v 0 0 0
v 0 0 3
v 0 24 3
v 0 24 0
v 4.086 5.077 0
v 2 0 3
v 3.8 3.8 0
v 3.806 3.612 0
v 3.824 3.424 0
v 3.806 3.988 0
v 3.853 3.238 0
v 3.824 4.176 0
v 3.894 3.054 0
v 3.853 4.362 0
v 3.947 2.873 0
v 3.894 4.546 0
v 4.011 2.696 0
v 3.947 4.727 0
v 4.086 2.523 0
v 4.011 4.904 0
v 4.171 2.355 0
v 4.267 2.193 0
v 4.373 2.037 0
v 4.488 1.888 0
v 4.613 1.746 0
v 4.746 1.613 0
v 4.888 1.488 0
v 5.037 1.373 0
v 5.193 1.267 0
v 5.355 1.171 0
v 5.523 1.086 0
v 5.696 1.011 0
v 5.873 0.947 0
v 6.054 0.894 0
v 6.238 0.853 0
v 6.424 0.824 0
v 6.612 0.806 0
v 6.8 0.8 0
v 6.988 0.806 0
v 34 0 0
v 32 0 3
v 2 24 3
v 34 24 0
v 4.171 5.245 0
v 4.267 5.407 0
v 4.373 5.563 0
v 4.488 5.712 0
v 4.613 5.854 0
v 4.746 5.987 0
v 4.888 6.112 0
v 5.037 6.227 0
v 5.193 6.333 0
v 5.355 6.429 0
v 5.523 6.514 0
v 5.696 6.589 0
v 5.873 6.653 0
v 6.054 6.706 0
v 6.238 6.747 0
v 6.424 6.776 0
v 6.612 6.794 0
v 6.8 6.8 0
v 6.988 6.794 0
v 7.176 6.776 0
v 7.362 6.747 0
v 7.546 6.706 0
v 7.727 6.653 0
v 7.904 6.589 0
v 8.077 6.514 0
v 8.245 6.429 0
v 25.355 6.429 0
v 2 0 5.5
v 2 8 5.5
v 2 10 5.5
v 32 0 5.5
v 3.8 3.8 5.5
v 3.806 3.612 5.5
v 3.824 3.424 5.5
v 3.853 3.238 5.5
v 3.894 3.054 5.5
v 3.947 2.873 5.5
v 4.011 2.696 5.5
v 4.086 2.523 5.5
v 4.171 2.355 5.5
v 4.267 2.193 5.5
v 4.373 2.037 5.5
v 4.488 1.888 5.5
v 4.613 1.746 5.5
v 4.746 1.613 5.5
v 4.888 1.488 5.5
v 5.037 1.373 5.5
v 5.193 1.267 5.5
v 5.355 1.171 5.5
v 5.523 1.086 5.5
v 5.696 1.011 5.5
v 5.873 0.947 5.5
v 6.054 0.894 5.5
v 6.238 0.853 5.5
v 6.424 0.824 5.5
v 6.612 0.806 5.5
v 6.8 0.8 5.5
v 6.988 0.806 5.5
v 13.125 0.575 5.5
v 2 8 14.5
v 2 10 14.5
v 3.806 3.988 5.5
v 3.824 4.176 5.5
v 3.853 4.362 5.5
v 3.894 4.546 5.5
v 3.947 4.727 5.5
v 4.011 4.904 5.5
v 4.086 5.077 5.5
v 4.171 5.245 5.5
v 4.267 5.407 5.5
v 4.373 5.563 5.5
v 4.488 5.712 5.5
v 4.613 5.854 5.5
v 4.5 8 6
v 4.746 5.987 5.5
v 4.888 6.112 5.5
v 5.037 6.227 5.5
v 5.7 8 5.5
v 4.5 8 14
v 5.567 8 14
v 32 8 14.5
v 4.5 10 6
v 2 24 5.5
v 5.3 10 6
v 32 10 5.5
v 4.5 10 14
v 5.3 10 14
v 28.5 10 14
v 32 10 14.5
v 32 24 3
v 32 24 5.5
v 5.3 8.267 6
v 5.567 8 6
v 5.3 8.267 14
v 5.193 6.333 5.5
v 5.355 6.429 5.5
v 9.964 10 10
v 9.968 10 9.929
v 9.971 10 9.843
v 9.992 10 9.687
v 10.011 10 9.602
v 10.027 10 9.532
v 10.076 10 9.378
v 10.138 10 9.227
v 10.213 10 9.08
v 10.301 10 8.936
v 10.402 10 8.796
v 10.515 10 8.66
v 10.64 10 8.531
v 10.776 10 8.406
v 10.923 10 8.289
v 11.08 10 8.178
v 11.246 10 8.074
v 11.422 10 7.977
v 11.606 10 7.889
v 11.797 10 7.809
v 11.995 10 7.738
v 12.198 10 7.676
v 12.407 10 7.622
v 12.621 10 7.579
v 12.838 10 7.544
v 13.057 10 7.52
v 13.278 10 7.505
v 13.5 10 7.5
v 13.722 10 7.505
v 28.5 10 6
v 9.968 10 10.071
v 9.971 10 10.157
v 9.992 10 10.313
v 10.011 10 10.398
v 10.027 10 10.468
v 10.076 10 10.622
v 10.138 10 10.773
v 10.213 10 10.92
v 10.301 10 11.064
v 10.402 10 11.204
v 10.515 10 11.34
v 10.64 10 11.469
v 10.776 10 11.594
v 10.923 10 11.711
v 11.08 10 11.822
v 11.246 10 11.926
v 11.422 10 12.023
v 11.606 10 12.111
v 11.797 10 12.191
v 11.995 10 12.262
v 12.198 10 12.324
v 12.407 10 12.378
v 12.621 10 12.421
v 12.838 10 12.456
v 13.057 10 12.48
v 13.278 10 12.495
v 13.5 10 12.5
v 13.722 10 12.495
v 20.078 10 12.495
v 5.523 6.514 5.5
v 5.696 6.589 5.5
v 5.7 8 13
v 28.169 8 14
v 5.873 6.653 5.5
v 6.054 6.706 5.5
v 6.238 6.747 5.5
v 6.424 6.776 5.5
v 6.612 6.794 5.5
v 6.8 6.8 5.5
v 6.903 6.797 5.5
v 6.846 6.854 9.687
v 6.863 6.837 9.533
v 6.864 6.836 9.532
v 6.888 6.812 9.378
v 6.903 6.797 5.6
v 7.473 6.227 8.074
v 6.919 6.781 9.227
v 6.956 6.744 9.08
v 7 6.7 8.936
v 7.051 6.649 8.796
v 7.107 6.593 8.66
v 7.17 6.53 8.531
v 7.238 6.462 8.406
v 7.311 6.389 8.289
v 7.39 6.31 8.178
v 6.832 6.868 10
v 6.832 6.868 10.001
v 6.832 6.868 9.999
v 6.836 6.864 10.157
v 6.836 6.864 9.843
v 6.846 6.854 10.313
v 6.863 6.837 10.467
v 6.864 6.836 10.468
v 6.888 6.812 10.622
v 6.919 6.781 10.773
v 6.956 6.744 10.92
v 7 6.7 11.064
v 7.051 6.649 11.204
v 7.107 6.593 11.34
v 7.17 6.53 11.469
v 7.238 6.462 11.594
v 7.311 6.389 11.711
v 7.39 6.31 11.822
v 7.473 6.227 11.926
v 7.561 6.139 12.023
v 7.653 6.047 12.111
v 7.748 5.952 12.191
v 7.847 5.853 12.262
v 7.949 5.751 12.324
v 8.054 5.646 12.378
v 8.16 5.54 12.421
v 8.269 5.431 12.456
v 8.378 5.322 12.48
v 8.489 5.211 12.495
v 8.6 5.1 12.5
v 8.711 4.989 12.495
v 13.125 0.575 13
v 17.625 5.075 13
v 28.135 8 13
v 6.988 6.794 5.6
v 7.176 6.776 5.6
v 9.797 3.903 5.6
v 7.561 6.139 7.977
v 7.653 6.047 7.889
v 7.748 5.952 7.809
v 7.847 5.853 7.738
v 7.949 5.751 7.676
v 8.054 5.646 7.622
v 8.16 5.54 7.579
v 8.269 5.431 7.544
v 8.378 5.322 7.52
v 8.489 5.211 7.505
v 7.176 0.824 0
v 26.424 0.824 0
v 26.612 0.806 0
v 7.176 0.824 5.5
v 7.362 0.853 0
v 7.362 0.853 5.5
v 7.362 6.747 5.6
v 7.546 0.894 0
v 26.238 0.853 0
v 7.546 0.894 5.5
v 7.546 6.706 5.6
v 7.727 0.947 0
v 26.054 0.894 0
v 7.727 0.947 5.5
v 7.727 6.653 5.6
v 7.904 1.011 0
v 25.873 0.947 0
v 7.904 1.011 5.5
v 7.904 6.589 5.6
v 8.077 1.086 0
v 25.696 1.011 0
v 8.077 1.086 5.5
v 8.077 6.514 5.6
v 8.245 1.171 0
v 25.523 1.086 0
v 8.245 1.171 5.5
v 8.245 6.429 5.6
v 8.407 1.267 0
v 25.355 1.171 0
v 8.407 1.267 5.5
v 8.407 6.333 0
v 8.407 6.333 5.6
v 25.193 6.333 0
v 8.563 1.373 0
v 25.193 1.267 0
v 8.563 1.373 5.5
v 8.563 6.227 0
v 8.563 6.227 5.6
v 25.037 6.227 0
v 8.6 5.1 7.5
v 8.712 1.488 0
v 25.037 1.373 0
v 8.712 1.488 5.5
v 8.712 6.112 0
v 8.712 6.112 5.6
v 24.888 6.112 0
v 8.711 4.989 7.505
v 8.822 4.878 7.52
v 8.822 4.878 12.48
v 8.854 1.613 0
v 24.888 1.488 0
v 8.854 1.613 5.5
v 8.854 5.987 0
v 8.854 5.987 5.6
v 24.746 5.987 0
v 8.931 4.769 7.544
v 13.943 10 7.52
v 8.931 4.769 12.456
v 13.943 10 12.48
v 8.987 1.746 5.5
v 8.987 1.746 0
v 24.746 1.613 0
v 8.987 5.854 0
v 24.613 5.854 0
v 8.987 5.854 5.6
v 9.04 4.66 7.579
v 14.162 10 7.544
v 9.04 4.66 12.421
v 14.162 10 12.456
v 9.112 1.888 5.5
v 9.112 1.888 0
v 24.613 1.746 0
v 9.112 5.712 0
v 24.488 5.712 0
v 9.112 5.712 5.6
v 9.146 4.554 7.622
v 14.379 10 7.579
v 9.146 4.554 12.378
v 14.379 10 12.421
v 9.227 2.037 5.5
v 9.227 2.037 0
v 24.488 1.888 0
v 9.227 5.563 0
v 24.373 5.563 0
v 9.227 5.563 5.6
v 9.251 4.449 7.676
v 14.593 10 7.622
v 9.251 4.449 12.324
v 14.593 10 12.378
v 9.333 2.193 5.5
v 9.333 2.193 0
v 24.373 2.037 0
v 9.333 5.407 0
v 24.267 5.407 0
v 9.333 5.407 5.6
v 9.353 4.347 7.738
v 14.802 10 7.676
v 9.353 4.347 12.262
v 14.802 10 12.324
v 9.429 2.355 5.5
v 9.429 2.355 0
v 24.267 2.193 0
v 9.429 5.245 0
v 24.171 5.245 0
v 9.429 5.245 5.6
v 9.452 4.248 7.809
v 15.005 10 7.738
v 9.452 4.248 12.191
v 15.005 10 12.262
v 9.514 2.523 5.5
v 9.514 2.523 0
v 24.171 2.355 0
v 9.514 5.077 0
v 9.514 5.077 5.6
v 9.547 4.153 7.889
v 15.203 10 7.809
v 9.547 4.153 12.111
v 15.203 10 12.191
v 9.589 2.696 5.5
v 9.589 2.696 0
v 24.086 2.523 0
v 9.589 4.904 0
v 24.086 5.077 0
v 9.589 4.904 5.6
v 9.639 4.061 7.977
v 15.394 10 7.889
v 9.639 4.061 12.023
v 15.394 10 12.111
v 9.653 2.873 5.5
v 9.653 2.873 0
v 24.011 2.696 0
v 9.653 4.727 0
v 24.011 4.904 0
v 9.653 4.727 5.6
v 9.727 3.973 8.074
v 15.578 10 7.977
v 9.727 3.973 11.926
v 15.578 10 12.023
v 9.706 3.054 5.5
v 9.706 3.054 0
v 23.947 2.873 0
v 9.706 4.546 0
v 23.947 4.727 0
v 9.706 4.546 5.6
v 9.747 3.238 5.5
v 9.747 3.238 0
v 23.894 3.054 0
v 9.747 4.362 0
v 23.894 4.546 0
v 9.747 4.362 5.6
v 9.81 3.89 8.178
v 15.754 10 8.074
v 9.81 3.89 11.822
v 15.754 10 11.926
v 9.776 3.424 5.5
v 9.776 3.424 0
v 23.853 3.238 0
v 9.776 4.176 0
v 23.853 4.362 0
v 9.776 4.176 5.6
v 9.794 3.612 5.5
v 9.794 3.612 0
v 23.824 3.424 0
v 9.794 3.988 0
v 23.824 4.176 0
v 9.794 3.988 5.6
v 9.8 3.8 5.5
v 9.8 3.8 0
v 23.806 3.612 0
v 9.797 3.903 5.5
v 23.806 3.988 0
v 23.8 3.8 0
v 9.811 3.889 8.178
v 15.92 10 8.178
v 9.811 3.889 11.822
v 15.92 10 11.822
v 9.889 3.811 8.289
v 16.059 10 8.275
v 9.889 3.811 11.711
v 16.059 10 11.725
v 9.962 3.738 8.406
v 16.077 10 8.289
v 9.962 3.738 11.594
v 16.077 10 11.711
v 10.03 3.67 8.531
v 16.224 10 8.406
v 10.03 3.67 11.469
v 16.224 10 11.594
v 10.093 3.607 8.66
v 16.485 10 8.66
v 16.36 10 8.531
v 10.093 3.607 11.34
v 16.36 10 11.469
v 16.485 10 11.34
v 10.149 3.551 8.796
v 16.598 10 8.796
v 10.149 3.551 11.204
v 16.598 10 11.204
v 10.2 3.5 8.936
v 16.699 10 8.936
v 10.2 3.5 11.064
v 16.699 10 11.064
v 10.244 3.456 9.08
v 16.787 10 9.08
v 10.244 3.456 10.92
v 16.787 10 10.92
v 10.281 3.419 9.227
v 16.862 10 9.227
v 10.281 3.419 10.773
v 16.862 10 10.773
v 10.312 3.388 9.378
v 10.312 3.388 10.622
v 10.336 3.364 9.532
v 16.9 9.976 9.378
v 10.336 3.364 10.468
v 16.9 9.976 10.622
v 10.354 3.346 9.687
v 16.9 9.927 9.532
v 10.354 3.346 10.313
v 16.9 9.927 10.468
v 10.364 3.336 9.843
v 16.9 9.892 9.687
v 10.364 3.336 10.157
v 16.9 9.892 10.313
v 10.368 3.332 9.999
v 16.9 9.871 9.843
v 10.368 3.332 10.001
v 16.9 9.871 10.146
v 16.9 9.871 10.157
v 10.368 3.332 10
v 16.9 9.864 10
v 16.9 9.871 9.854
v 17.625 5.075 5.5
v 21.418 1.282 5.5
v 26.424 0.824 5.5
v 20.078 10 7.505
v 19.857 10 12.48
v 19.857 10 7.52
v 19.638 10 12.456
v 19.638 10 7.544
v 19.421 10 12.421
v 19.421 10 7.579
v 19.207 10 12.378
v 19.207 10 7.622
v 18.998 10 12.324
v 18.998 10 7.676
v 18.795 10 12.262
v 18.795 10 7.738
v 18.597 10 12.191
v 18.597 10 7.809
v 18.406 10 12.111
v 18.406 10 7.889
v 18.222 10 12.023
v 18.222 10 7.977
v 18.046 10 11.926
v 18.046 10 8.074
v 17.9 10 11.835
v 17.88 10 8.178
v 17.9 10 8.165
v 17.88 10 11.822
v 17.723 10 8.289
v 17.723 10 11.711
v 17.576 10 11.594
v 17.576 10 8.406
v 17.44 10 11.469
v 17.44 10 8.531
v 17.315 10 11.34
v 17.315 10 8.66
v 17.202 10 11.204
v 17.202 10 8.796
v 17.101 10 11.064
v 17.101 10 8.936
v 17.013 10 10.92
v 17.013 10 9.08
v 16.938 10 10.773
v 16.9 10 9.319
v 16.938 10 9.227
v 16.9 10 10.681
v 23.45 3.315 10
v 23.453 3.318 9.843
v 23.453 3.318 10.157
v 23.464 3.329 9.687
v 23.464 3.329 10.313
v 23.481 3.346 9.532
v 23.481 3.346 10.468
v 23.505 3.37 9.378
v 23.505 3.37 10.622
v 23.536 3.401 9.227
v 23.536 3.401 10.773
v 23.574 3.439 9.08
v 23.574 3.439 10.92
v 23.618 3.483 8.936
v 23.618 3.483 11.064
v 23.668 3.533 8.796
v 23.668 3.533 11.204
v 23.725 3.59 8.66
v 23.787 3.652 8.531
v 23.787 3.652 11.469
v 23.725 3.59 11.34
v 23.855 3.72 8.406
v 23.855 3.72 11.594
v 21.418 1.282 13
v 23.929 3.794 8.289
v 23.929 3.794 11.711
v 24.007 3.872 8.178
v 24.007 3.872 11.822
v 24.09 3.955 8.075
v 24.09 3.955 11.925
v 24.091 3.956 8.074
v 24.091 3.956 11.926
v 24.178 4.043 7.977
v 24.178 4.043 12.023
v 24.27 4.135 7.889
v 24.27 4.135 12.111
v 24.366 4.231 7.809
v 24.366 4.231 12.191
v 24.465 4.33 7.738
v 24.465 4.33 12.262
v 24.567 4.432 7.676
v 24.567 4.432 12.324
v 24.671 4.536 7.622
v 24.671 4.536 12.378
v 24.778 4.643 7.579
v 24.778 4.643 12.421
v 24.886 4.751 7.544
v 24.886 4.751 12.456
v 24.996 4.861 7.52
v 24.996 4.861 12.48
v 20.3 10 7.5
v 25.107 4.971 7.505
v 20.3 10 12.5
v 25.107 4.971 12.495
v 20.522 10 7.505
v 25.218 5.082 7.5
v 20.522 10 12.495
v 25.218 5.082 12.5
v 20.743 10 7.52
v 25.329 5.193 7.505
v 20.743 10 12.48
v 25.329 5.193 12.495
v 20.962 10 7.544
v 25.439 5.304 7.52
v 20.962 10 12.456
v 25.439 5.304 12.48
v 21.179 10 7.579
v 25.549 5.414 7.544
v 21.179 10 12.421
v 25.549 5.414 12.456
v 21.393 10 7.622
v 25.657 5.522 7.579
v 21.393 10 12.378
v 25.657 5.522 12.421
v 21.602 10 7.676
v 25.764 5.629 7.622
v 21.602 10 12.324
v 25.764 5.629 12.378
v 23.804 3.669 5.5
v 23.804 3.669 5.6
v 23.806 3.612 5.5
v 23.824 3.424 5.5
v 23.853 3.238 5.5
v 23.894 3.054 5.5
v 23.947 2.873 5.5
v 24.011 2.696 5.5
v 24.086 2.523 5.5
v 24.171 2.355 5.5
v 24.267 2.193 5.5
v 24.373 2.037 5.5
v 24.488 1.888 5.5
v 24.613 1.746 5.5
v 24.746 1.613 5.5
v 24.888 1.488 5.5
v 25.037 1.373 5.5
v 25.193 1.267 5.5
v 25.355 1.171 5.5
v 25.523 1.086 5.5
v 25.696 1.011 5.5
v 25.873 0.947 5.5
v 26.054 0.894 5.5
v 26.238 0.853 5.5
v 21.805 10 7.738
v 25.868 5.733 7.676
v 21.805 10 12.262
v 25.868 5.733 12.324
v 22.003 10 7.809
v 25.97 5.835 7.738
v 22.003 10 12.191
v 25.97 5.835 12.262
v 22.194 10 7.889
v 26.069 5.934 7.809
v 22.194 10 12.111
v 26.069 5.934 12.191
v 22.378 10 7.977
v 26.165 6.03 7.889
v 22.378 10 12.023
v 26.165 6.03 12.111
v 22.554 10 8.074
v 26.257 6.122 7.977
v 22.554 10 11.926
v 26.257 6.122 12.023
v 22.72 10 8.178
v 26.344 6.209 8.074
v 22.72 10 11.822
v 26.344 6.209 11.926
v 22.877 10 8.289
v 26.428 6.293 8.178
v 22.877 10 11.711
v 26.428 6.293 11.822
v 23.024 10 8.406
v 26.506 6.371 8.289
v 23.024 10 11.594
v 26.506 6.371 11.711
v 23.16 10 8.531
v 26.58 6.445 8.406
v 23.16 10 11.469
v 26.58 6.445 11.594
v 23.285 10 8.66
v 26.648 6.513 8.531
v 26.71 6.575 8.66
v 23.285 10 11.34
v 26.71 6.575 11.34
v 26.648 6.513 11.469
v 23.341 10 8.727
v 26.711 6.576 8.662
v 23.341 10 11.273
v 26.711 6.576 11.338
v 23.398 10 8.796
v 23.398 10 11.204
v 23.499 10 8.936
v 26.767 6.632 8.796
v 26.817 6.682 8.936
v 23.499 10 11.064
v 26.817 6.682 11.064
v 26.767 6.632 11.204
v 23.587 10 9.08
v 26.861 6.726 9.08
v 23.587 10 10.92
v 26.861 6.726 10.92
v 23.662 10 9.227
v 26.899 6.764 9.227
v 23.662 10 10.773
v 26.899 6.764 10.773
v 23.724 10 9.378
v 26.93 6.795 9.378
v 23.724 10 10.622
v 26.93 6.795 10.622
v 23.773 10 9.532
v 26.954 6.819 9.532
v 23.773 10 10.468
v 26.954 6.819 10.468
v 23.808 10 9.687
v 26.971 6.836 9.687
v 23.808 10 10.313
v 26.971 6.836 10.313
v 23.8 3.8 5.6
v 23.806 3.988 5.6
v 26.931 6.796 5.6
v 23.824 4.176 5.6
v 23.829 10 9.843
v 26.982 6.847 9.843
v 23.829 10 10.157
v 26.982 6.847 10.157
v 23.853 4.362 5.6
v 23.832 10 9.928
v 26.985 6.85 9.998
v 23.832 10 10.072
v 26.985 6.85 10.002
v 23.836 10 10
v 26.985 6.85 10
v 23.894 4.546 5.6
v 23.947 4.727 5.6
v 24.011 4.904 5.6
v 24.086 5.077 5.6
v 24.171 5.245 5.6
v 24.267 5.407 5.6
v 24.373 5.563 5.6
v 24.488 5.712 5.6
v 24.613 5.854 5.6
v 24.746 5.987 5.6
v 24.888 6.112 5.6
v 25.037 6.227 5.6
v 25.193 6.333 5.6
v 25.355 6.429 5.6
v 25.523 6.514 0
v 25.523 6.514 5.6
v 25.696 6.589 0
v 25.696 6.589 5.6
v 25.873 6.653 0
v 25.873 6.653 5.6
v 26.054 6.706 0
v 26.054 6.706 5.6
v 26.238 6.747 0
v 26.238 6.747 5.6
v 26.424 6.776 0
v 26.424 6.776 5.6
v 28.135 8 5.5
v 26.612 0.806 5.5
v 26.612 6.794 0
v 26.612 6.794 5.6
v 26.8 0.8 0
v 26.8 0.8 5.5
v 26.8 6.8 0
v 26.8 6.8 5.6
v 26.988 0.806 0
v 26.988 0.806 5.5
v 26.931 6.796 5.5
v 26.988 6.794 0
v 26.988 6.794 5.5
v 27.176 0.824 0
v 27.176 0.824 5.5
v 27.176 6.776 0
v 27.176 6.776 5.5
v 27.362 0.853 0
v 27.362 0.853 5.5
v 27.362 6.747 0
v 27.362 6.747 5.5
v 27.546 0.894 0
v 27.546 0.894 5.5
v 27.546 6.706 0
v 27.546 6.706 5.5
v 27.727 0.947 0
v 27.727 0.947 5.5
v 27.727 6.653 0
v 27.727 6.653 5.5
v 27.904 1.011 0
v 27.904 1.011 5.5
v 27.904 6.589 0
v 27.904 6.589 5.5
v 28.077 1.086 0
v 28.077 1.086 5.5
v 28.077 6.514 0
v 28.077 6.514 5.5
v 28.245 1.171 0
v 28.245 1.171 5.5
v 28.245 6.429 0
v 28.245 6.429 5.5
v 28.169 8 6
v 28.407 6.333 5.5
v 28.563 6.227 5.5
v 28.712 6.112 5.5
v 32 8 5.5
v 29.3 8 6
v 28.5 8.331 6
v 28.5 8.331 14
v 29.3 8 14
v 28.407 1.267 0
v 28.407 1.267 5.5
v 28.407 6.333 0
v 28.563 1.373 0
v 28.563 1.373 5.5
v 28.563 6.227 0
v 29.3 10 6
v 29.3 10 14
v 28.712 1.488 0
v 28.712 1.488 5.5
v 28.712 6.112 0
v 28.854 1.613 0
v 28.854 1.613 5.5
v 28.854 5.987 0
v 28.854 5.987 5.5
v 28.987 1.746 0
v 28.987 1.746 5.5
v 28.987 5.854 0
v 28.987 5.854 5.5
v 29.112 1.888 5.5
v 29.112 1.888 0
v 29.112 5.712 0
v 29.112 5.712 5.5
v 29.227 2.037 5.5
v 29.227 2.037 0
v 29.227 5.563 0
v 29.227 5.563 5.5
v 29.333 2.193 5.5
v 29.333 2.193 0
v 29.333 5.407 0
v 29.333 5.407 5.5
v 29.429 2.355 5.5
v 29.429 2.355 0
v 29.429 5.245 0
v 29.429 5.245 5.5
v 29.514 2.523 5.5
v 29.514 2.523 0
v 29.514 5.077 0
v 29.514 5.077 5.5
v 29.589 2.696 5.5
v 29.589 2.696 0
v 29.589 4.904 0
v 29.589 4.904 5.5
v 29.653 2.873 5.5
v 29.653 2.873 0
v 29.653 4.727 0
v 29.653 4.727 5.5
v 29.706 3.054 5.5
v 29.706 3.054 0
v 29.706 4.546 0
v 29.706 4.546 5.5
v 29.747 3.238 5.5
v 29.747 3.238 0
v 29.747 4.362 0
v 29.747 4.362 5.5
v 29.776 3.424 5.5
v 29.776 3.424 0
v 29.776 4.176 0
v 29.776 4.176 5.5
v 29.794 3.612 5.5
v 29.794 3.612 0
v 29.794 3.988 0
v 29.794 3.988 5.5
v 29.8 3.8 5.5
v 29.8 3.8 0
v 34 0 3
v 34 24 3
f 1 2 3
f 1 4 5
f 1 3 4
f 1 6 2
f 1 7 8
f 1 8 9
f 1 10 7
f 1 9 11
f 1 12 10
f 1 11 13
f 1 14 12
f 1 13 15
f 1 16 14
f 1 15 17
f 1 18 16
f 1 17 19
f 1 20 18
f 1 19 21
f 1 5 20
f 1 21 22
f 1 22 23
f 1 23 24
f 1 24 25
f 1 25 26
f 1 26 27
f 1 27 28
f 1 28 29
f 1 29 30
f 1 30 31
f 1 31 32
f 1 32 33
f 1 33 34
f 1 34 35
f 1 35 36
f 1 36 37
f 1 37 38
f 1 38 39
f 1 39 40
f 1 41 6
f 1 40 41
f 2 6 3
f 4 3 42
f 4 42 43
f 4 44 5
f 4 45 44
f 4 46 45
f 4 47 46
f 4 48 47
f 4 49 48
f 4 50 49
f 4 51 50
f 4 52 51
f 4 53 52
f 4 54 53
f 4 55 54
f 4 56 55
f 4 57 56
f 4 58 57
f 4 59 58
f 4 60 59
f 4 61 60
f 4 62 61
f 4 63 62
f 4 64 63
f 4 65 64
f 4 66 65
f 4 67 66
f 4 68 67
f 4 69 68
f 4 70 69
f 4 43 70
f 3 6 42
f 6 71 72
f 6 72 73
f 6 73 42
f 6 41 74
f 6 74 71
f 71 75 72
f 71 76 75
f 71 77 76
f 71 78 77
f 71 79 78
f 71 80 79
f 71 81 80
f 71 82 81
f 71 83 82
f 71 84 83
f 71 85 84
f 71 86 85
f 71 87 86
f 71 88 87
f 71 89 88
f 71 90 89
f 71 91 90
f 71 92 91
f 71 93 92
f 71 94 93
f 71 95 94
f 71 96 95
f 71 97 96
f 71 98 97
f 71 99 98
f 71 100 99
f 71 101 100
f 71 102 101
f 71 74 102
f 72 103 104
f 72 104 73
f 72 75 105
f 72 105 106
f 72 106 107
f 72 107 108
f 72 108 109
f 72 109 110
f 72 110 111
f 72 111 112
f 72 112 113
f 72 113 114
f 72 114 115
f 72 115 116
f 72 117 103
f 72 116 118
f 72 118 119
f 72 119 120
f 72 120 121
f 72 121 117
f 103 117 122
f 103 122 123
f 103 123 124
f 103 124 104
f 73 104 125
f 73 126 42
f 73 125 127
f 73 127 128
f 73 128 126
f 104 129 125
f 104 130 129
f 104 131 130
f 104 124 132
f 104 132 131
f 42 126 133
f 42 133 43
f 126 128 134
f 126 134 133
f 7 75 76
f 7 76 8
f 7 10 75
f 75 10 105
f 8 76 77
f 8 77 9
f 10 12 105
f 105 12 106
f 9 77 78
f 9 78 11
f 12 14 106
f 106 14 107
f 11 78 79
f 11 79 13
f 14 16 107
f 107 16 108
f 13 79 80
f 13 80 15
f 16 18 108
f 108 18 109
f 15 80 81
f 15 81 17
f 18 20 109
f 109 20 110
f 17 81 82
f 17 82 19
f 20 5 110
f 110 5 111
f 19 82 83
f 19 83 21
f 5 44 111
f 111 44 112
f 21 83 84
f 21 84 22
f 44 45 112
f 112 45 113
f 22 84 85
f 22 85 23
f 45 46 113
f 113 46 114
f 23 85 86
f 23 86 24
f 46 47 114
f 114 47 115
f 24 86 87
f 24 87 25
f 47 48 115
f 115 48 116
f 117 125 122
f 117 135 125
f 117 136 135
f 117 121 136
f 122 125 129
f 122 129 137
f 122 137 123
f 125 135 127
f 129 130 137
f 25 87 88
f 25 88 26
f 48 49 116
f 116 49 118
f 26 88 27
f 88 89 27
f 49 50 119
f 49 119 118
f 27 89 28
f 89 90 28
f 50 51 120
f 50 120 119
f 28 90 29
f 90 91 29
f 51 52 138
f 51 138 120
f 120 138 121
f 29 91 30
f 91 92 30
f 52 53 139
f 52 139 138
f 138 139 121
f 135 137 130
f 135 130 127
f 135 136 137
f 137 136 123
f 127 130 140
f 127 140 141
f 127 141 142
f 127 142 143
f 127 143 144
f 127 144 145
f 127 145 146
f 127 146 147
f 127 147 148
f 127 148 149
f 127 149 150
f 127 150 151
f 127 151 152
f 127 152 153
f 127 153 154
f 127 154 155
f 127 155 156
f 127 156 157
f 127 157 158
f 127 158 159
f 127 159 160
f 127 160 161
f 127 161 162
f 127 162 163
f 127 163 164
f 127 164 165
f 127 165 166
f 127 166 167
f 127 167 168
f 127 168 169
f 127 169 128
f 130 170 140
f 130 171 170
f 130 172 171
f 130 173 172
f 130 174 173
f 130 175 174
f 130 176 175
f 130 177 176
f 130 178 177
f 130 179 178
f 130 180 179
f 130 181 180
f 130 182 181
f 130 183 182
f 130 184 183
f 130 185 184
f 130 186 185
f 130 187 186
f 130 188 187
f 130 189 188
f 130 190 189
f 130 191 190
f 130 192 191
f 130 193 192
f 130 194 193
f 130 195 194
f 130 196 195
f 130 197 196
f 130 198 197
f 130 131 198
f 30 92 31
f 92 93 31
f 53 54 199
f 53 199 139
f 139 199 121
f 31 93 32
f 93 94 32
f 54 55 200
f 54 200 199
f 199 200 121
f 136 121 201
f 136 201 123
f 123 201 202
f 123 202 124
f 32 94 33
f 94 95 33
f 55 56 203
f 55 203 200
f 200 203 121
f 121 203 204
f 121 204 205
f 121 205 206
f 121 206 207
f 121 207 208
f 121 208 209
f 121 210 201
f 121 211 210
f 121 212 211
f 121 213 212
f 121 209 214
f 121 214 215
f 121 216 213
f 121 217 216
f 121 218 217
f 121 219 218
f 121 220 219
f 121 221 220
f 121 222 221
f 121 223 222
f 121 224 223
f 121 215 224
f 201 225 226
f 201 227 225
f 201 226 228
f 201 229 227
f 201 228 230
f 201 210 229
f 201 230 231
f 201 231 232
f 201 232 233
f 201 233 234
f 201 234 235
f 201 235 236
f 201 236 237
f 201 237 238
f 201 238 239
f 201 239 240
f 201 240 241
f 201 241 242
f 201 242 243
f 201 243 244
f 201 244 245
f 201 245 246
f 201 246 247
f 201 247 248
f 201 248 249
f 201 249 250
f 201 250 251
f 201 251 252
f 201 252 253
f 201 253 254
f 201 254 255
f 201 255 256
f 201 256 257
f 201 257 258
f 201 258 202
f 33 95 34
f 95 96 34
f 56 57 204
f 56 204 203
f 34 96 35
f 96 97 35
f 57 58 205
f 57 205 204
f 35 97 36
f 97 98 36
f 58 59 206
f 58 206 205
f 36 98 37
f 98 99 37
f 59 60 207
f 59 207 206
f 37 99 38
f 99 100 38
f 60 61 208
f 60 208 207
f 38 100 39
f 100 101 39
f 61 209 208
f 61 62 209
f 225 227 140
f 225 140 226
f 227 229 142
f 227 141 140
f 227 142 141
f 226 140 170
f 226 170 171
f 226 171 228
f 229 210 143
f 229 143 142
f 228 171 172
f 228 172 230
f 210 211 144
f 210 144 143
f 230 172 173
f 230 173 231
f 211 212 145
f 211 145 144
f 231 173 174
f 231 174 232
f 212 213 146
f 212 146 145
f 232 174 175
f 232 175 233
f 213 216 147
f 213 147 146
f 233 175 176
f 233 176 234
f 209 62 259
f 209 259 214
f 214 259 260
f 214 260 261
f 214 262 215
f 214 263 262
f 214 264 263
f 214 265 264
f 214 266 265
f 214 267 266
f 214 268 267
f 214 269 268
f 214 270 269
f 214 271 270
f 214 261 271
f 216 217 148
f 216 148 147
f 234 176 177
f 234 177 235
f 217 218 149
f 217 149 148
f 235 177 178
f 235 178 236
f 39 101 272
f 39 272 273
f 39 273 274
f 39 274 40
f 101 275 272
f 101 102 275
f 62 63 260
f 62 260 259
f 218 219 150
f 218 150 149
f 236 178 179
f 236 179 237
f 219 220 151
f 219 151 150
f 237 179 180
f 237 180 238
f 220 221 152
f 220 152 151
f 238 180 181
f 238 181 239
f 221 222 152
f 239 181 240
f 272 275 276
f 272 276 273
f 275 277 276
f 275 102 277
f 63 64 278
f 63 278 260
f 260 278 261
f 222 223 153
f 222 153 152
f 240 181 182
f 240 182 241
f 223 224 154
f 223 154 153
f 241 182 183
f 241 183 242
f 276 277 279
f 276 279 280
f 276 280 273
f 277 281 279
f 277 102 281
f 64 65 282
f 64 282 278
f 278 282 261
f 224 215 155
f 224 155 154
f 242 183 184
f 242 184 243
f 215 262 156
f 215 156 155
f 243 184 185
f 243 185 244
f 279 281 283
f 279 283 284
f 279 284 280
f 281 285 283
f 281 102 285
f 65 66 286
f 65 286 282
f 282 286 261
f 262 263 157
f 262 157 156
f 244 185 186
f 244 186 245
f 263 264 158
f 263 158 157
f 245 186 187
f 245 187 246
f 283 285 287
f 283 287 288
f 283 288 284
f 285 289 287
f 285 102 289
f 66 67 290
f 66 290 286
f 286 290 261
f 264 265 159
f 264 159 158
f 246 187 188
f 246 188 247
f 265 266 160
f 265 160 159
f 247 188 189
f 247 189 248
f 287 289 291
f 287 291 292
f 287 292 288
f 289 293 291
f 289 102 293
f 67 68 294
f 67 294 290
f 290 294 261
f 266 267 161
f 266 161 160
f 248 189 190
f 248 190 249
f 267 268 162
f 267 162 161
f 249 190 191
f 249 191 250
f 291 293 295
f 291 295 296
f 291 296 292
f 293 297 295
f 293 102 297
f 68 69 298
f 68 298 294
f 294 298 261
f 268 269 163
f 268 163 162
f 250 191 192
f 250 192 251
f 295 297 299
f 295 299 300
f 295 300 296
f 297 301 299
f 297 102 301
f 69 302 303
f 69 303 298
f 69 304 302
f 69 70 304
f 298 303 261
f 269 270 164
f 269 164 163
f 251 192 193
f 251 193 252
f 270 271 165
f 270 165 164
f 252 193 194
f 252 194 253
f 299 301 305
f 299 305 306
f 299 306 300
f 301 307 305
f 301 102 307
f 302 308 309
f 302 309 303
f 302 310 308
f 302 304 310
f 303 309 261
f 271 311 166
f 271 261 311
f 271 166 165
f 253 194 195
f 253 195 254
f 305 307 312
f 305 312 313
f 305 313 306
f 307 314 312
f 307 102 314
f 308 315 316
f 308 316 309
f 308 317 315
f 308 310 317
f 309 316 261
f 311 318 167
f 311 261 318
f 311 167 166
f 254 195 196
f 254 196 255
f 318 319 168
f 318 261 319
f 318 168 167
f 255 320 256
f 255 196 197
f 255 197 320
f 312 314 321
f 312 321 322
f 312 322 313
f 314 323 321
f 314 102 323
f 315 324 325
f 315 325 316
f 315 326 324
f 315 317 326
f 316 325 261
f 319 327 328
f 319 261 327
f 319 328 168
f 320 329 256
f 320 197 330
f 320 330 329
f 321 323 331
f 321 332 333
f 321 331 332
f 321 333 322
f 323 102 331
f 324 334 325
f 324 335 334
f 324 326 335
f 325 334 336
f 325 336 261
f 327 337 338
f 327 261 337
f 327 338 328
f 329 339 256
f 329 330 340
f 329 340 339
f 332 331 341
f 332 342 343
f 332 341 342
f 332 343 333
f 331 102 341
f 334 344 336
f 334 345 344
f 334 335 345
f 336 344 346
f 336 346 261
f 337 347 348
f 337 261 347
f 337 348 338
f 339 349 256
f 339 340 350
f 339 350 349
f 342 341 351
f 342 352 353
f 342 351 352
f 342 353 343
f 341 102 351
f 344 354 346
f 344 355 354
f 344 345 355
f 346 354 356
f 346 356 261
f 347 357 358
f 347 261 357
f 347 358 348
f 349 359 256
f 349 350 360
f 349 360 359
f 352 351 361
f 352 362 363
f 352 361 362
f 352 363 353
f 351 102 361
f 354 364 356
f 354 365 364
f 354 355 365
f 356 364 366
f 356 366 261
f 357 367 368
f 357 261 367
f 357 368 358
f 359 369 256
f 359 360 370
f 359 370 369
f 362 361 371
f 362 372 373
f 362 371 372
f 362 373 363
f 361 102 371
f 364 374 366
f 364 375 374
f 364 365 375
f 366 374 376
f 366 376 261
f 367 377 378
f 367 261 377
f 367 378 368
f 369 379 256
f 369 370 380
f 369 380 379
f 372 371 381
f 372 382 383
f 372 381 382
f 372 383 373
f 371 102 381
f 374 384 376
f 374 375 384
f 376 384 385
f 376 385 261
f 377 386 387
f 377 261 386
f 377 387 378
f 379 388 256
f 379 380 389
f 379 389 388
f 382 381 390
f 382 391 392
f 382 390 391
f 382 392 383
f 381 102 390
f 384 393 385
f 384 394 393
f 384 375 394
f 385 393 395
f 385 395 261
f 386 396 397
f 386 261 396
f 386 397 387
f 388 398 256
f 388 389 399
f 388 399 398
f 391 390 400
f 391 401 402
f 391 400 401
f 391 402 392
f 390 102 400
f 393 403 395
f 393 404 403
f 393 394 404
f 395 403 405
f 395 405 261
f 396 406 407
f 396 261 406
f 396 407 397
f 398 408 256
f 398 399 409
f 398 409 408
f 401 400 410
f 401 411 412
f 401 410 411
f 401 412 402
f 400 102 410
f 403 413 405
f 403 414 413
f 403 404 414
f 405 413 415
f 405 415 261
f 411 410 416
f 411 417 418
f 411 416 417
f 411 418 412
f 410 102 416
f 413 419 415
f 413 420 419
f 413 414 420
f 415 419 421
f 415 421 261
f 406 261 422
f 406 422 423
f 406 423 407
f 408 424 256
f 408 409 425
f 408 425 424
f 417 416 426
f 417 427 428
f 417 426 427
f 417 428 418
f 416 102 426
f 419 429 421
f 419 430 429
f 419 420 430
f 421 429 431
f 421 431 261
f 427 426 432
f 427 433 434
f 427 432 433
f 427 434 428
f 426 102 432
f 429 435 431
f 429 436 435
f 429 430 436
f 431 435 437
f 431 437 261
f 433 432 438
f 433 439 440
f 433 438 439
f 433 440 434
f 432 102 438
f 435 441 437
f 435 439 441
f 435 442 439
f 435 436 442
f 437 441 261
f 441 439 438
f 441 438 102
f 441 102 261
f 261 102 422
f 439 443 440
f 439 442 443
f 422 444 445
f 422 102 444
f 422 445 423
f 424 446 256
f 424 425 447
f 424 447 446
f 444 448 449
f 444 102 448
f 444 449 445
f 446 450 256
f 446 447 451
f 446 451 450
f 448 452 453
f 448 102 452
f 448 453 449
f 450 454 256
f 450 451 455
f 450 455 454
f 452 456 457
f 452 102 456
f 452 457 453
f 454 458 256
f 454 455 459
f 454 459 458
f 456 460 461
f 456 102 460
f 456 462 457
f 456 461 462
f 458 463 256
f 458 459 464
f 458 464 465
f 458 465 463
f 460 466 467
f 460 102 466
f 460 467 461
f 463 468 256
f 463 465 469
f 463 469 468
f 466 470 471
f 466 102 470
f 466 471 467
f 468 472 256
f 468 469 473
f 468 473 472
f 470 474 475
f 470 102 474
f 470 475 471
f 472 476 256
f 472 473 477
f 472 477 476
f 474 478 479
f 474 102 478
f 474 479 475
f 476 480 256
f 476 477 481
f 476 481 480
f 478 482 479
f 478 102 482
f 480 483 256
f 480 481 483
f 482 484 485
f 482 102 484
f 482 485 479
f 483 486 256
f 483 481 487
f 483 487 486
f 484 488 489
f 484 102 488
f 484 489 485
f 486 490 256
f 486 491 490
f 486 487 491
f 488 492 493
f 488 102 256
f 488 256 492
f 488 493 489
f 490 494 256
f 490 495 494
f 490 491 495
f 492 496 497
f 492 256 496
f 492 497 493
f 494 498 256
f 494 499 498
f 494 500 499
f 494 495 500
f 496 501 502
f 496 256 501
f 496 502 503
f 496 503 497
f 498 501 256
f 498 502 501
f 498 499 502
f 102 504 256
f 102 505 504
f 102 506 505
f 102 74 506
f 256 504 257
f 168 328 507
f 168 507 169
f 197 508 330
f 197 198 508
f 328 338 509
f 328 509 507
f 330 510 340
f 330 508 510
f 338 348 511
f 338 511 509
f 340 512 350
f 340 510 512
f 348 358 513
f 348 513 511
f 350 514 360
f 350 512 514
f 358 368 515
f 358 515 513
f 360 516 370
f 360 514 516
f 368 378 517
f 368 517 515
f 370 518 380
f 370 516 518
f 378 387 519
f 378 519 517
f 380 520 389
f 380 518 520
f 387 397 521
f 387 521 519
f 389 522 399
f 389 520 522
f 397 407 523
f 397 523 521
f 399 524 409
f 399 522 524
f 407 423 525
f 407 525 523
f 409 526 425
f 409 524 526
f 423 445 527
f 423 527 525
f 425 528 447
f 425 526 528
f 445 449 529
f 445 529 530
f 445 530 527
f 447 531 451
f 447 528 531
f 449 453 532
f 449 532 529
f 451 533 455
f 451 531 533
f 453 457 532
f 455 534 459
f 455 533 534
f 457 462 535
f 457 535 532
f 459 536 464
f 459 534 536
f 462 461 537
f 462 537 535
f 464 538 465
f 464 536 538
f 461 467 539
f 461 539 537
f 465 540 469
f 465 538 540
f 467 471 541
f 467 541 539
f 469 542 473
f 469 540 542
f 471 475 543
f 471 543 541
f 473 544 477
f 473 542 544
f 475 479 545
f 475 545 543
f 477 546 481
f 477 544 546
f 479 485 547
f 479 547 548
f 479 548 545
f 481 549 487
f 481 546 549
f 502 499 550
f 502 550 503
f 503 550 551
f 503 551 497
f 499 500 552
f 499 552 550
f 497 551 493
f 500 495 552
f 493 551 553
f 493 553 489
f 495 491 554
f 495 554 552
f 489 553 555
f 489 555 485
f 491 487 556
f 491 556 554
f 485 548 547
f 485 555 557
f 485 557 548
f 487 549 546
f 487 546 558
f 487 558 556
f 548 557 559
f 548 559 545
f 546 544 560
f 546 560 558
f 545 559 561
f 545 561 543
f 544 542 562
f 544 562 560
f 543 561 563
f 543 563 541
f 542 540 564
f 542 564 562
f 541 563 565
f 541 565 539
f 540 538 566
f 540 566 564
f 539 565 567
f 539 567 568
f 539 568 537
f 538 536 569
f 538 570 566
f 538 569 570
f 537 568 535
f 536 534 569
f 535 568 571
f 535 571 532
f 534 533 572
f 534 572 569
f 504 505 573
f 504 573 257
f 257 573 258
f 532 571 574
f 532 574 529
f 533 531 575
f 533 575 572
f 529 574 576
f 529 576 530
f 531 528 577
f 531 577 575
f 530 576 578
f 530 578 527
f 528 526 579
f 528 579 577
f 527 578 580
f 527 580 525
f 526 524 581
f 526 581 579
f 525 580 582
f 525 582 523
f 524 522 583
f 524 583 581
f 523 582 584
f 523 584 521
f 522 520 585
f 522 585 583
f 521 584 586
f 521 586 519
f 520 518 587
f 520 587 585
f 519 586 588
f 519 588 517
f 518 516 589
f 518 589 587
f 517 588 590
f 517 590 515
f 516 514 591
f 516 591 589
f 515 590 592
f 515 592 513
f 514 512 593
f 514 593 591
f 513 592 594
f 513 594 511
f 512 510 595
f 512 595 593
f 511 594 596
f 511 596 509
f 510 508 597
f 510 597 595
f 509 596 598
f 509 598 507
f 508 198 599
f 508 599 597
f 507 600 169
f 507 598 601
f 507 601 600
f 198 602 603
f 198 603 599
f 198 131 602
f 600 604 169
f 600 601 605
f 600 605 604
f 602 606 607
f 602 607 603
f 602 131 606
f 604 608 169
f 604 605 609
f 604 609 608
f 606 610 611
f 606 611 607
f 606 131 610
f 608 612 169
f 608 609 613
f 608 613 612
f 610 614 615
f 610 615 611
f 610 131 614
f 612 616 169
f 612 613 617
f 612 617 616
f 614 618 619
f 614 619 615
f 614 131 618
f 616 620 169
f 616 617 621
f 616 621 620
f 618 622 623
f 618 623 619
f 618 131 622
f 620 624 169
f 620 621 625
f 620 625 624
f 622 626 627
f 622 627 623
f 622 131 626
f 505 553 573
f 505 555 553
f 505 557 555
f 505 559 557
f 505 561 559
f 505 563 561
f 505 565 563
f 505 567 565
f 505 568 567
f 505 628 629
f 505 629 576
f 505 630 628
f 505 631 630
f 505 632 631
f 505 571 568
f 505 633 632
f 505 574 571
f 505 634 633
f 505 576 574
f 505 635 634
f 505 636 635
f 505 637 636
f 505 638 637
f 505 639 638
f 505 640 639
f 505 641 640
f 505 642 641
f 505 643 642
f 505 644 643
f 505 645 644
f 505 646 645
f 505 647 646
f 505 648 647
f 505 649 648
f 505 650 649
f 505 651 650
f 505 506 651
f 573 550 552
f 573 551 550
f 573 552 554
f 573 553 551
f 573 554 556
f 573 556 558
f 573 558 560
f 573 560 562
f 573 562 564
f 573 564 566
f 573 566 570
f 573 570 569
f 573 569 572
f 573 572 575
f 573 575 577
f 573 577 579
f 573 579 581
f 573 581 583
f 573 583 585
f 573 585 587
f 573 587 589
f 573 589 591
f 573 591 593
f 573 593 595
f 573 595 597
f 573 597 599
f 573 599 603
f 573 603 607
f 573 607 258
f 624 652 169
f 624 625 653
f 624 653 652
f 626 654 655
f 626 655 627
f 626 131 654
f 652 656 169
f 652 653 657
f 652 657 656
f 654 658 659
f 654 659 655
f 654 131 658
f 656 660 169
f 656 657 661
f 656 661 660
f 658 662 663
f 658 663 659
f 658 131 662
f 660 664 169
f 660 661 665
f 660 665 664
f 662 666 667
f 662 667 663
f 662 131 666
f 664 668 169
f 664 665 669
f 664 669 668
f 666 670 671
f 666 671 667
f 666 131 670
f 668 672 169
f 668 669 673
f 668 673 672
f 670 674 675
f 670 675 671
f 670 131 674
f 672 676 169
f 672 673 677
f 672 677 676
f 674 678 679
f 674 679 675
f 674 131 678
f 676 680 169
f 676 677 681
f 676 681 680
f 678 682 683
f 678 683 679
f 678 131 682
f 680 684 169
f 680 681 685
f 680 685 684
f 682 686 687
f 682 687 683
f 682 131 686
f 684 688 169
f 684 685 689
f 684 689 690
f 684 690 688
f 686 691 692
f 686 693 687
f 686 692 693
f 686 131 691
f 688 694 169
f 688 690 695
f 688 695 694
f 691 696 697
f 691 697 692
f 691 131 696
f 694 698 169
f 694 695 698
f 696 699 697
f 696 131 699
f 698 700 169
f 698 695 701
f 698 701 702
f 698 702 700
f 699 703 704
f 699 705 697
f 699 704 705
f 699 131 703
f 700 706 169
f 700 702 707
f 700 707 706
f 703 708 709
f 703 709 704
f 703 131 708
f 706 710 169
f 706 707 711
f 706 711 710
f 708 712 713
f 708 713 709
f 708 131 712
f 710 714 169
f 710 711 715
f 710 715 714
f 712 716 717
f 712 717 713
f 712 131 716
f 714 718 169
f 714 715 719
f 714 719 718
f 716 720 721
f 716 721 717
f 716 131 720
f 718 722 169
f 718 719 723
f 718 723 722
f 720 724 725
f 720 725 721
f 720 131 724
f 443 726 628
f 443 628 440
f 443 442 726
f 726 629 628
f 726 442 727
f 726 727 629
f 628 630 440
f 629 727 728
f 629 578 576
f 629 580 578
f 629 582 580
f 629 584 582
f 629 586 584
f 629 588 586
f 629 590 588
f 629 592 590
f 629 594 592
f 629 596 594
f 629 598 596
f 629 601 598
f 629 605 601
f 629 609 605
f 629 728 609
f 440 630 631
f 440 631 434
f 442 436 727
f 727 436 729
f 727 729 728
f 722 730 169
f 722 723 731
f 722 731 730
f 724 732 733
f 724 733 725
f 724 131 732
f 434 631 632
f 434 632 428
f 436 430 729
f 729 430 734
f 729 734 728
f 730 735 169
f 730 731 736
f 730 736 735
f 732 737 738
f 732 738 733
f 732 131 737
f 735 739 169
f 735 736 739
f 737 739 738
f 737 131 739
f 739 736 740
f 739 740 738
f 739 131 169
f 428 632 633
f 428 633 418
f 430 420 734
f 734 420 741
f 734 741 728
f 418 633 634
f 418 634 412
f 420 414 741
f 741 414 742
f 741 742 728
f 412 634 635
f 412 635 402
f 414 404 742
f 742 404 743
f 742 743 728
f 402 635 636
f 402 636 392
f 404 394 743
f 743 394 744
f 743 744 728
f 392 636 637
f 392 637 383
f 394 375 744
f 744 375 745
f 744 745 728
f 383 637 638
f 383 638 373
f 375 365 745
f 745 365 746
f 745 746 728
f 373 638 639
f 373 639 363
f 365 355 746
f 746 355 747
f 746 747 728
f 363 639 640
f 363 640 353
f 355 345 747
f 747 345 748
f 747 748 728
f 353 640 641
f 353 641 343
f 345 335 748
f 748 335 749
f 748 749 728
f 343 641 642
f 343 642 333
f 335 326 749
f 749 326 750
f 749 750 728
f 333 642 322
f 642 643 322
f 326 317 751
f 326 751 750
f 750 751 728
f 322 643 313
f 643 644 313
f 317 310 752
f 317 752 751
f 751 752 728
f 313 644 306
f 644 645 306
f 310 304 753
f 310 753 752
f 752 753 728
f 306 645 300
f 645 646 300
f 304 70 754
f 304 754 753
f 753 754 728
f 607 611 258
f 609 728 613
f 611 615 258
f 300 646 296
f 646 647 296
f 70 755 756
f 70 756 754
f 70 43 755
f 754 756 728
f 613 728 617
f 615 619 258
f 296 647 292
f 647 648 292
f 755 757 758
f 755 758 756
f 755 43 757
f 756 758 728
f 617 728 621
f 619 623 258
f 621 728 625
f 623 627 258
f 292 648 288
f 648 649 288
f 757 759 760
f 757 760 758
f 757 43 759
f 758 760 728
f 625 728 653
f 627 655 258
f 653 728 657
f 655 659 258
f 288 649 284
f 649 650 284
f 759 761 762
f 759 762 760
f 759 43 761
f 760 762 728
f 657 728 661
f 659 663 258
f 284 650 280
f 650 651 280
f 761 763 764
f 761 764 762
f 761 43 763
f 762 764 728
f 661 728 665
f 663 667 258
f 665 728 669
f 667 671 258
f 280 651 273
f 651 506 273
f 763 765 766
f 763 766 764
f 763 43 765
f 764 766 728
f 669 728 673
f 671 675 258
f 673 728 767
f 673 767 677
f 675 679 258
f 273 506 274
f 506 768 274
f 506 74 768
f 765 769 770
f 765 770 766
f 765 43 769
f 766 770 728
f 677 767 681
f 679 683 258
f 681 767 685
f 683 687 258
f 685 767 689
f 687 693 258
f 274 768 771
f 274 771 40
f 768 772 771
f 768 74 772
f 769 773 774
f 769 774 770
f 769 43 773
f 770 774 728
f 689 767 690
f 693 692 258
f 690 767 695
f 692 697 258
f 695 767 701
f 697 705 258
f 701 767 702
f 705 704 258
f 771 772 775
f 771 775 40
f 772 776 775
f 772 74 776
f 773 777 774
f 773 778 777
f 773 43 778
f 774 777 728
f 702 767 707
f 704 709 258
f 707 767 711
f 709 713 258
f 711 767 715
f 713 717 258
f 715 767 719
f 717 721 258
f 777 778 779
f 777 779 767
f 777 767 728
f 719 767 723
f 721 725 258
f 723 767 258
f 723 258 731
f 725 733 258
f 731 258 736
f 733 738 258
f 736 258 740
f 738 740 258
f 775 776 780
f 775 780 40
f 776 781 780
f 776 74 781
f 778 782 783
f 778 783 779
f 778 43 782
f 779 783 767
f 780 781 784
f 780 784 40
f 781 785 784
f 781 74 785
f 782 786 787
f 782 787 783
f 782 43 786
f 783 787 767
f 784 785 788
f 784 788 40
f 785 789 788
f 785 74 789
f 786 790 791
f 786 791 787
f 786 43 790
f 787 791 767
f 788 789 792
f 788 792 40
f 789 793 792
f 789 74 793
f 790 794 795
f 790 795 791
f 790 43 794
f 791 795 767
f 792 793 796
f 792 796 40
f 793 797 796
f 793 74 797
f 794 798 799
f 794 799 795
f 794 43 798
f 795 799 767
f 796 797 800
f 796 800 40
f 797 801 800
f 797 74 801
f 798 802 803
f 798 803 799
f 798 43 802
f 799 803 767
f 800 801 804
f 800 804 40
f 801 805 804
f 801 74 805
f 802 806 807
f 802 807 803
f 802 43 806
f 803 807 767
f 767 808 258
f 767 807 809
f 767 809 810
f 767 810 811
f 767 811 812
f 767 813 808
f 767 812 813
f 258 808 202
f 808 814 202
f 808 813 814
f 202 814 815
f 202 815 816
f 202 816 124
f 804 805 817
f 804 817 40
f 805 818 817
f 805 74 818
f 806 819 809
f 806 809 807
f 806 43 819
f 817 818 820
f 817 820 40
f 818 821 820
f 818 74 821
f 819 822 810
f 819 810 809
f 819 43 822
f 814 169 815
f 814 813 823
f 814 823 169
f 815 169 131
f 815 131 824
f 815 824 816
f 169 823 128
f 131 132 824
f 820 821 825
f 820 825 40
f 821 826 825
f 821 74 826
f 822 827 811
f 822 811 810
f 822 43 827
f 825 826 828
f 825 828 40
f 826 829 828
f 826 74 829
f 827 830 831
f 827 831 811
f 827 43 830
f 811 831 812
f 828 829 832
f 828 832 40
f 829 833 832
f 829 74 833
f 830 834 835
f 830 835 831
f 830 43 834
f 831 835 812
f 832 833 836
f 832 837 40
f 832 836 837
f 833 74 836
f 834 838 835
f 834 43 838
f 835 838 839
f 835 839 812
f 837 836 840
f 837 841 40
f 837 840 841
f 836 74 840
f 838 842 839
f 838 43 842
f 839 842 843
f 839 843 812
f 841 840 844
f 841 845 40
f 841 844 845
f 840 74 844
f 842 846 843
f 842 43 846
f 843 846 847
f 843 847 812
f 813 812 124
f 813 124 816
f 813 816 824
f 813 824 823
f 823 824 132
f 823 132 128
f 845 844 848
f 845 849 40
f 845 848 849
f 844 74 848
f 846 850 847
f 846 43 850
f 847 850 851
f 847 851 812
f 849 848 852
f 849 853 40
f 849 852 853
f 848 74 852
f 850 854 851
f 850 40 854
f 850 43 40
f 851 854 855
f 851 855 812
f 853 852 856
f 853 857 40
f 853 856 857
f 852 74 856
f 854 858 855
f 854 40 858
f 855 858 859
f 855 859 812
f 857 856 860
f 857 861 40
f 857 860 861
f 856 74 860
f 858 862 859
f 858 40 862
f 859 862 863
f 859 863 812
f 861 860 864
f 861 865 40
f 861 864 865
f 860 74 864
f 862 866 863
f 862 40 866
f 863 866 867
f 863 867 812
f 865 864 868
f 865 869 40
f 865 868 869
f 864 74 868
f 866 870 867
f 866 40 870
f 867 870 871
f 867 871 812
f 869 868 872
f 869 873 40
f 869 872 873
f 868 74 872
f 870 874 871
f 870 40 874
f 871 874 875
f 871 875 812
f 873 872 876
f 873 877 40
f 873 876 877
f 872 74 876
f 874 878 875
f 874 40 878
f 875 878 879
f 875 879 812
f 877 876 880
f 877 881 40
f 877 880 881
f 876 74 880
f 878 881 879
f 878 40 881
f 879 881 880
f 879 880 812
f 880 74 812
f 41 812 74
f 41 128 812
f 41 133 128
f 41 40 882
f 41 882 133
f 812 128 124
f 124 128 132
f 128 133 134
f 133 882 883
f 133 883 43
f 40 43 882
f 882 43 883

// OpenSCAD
$fn=100;

color("grey") {
    difference() {
        union() {
            cube([34, 24, 3]);
            translate([2, 0, 3])
                cube([30, 24, 2.5]);
            translate([2, 8, 5.5]) {
                cube([30, 2, 9]);

                translate([3.7, 0, 0])
                    rotate([90, 0, 0])
                        pyramid(7.5, 10.5, 10.5);

                 translate([12.7, 0, 0]) {
                    rotate([90, 0, 0])
                        //difference() {
                            pyramid(7.5, 9.5, 9.5);
                            // cube([7.6, 20, 8]);
                        //}
                 }
            }
        }
        cosses();
        translate([0, 3.8, -1]) {
            translate([6.8, 0, 0]) {
                cylinder(6.6, 3, 3);
                translate([1.75, 1.25, 11]) rotate([90, 0, -225]) cylinder(10, 2.5, 2.5);
            }
            //translate([20, 0, 0]) cylinder(6.6, 3, 3);
            translate([26.8, 0, 0]) {
                cylinder(6.6, 3, 3);
                translate([-1.5, 1.2, 11]) rotate([90, 0, 225]) cylinder(10, 2.5, 2.5);
            }
        }
    }
}
//cosses();

module cosses()  {
    translate([4.5, 8, 6])
        cosse45(RIGHT);
//    translate([21, 8, 6])
//        cosse45();
    translate([28.5, 8, 6])
        cosse45();
}

LEFT=0;
RIGHT=1;
module cosse45(orientation=LEFT) {
    thickness=0.8;
    lenght1=8.5;
    lenght2=10;
    width=8;
    cube([thickness, lenght1, width]);
    if (orientation==LEFT) {
        bent_part(thickness, 0, 0, 0, 0, 180-45);
    } else {
        bent_part(2/3*thickness, 2/3*thickness, 0, 0, 0, 270-45);
    }

    module bent_part(tx, ty, tz, rx, ry, rz) {        
        translate([tx, ty, tz])
            rotate([rx, ry, rz])
                difference() {
                    cube([thickness, lenght2, width]);
                    translate([0, lenght2/2, width/2])
                        rotate([0, 90, 0])
                            cylinder(5, 2.5, 2.5, center=true);
                }
    }
}


module pyramid(dx, dy, dz) {
    ndy = sqrt(pow(dy, 2)+pow(dz, 2));
    // pyramid
    rotate([135, 0, 90])
    difference() {
        cube([dx, dy, dz]);
        rotate([45, 0, 0])
            translate([-1, 0, 0])
                cube([dx+2, ndy+1, dz]);
    }
}
